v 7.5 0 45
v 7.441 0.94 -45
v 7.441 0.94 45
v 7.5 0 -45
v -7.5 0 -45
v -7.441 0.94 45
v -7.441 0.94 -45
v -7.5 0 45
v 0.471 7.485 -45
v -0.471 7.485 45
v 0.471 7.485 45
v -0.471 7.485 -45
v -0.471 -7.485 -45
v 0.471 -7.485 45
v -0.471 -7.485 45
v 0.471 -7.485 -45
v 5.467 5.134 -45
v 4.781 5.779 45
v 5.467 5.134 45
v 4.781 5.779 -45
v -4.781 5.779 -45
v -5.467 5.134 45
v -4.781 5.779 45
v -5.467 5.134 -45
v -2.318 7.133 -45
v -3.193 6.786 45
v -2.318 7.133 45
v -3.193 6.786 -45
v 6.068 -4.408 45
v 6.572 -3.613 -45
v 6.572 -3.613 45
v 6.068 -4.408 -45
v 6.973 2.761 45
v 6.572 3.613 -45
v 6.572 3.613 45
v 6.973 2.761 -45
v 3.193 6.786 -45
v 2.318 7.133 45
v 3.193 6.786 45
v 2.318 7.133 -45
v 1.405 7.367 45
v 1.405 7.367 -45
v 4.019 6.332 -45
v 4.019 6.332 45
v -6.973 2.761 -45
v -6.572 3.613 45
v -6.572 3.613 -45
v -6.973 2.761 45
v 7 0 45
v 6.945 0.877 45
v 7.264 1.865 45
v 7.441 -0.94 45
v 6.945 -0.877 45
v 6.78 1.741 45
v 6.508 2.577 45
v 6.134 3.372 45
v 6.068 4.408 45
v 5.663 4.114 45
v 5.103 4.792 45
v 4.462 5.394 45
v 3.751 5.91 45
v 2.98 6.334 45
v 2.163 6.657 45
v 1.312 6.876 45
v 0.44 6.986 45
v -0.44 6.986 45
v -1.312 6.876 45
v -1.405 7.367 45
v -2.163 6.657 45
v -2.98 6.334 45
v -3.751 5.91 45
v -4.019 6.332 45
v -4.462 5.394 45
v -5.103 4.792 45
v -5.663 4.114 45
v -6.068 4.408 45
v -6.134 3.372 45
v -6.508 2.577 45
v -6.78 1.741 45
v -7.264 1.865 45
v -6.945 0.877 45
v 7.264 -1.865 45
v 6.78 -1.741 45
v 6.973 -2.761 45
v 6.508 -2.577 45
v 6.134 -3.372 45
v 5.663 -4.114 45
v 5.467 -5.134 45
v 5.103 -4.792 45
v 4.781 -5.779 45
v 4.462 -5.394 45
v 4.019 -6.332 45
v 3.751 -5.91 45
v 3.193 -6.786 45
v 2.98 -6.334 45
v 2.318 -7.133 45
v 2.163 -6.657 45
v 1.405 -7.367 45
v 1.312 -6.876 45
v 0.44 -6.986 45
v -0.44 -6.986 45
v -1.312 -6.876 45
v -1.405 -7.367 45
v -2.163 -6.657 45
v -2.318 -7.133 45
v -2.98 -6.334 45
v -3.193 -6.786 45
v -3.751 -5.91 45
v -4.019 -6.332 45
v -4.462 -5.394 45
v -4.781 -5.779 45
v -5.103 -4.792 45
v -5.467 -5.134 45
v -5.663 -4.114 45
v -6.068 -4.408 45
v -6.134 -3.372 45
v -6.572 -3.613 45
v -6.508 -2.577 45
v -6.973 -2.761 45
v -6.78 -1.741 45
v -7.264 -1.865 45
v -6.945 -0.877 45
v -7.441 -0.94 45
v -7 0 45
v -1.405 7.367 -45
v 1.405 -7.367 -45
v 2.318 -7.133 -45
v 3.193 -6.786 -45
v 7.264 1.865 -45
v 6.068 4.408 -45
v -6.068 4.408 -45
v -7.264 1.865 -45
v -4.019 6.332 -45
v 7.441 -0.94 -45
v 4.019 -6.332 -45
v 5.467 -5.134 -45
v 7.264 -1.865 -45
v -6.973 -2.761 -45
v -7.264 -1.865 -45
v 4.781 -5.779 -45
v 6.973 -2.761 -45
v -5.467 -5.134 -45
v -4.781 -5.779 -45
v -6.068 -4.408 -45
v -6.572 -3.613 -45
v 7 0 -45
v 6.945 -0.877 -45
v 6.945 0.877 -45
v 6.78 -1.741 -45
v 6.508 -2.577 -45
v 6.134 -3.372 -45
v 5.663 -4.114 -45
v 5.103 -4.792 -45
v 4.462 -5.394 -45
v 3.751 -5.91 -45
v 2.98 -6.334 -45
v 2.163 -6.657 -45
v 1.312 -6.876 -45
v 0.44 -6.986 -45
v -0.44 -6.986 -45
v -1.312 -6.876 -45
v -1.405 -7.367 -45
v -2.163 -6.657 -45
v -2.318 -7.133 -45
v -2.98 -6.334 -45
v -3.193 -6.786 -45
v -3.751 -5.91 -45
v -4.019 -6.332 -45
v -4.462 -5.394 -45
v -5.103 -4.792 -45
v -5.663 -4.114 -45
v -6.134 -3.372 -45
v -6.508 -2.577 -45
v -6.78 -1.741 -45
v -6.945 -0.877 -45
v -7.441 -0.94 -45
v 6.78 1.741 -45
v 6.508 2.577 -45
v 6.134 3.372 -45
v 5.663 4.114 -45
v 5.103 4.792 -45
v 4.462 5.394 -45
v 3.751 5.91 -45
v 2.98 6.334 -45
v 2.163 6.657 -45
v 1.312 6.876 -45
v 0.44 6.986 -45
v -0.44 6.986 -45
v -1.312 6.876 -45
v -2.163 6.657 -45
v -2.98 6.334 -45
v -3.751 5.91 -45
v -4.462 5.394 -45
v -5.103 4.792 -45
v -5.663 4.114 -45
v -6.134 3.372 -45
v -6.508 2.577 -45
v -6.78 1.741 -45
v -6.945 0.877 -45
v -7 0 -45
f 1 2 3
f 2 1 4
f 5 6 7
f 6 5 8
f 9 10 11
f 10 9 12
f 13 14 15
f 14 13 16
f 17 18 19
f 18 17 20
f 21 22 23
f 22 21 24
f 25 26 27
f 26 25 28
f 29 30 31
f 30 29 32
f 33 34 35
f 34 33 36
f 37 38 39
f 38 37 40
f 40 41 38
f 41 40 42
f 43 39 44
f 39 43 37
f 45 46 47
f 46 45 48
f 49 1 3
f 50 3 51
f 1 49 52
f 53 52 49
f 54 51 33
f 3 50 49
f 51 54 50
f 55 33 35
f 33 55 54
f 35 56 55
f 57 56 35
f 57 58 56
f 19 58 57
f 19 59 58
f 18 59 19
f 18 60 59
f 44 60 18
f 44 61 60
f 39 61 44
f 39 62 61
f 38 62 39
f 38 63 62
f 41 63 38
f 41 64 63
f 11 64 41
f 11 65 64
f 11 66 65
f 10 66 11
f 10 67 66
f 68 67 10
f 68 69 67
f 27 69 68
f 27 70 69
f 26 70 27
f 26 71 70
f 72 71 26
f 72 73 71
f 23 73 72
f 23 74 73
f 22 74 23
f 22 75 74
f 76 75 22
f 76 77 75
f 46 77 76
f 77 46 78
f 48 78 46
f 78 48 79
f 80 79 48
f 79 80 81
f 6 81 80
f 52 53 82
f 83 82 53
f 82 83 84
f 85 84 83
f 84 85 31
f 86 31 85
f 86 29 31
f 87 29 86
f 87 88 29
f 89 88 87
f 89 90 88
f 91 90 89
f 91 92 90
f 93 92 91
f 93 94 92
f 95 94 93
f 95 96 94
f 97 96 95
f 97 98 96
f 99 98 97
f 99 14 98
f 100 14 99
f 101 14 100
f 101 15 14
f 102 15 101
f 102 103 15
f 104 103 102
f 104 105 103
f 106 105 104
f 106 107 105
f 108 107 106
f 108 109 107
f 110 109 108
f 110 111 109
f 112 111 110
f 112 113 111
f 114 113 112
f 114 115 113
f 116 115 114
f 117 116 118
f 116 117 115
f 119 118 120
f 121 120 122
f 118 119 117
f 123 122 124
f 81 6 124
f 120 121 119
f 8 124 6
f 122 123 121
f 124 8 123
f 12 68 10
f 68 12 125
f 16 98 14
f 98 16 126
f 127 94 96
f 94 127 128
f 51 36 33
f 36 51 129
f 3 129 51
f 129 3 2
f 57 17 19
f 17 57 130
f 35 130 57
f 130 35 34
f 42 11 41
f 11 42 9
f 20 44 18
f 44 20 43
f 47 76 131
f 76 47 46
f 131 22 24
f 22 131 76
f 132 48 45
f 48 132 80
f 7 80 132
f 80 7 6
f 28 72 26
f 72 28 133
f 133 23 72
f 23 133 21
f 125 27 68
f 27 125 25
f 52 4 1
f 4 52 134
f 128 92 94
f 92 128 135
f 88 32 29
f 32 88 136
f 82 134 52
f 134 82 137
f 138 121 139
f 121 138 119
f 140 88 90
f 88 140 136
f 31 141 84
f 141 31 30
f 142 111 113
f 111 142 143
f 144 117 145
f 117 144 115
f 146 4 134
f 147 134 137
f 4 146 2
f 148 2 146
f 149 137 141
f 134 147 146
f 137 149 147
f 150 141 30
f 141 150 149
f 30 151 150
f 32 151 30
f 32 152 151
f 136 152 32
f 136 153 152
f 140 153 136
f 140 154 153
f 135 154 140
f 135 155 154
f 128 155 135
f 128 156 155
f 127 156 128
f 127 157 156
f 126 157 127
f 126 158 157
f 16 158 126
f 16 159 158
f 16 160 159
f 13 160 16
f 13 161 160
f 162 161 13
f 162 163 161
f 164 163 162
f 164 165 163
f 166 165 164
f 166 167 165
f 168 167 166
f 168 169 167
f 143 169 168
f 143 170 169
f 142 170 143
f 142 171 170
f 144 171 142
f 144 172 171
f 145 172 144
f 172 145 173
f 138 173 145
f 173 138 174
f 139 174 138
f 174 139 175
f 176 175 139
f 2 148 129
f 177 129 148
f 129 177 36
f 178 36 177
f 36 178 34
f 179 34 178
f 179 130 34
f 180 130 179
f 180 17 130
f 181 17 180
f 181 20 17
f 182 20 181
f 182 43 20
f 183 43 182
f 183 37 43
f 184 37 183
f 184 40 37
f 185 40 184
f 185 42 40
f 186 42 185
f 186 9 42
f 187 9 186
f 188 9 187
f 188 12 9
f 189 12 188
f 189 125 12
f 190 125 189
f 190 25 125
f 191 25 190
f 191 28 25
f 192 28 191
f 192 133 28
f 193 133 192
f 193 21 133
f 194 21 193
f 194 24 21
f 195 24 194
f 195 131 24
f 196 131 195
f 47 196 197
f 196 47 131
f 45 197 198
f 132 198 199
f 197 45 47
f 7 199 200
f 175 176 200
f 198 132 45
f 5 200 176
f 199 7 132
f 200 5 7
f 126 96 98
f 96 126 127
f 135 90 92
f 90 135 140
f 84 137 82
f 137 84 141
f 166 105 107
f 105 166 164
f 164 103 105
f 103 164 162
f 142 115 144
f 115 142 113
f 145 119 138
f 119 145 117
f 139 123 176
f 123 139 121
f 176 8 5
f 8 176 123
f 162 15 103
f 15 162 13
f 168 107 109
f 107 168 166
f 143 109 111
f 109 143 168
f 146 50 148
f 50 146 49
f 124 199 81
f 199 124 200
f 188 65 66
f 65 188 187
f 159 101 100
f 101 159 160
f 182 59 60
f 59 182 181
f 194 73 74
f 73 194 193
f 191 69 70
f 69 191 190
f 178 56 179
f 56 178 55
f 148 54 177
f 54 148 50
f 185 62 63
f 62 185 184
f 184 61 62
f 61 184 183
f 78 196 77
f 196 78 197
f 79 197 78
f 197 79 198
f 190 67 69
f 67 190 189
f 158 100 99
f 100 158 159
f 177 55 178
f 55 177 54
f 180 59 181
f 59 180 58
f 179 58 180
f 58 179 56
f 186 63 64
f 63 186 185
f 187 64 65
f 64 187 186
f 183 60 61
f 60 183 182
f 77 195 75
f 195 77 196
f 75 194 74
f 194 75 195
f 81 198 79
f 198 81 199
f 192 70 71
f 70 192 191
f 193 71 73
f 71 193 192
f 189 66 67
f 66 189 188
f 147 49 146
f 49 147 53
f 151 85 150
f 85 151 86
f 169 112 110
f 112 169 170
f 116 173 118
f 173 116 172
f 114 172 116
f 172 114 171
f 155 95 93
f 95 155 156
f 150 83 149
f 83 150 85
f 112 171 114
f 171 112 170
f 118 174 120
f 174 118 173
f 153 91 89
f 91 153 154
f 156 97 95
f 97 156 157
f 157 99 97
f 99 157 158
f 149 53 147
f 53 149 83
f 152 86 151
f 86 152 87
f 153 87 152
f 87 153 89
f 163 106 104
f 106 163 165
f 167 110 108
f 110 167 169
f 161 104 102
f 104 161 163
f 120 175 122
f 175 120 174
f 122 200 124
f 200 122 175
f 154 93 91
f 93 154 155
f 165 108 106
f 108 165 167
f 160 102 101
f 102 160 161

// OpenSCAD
$fn = 50;


difference() {
	union() {
		translate(v = [0, 0, -45.0000000000]) {
			cylinder(h = 90, r = 7.5000000000);
		}
	}
	union() {
		translate(v = [0, 0, -100.0000000000]) {
			cylinder(h = 200, r = 7);
		}
	}
}
